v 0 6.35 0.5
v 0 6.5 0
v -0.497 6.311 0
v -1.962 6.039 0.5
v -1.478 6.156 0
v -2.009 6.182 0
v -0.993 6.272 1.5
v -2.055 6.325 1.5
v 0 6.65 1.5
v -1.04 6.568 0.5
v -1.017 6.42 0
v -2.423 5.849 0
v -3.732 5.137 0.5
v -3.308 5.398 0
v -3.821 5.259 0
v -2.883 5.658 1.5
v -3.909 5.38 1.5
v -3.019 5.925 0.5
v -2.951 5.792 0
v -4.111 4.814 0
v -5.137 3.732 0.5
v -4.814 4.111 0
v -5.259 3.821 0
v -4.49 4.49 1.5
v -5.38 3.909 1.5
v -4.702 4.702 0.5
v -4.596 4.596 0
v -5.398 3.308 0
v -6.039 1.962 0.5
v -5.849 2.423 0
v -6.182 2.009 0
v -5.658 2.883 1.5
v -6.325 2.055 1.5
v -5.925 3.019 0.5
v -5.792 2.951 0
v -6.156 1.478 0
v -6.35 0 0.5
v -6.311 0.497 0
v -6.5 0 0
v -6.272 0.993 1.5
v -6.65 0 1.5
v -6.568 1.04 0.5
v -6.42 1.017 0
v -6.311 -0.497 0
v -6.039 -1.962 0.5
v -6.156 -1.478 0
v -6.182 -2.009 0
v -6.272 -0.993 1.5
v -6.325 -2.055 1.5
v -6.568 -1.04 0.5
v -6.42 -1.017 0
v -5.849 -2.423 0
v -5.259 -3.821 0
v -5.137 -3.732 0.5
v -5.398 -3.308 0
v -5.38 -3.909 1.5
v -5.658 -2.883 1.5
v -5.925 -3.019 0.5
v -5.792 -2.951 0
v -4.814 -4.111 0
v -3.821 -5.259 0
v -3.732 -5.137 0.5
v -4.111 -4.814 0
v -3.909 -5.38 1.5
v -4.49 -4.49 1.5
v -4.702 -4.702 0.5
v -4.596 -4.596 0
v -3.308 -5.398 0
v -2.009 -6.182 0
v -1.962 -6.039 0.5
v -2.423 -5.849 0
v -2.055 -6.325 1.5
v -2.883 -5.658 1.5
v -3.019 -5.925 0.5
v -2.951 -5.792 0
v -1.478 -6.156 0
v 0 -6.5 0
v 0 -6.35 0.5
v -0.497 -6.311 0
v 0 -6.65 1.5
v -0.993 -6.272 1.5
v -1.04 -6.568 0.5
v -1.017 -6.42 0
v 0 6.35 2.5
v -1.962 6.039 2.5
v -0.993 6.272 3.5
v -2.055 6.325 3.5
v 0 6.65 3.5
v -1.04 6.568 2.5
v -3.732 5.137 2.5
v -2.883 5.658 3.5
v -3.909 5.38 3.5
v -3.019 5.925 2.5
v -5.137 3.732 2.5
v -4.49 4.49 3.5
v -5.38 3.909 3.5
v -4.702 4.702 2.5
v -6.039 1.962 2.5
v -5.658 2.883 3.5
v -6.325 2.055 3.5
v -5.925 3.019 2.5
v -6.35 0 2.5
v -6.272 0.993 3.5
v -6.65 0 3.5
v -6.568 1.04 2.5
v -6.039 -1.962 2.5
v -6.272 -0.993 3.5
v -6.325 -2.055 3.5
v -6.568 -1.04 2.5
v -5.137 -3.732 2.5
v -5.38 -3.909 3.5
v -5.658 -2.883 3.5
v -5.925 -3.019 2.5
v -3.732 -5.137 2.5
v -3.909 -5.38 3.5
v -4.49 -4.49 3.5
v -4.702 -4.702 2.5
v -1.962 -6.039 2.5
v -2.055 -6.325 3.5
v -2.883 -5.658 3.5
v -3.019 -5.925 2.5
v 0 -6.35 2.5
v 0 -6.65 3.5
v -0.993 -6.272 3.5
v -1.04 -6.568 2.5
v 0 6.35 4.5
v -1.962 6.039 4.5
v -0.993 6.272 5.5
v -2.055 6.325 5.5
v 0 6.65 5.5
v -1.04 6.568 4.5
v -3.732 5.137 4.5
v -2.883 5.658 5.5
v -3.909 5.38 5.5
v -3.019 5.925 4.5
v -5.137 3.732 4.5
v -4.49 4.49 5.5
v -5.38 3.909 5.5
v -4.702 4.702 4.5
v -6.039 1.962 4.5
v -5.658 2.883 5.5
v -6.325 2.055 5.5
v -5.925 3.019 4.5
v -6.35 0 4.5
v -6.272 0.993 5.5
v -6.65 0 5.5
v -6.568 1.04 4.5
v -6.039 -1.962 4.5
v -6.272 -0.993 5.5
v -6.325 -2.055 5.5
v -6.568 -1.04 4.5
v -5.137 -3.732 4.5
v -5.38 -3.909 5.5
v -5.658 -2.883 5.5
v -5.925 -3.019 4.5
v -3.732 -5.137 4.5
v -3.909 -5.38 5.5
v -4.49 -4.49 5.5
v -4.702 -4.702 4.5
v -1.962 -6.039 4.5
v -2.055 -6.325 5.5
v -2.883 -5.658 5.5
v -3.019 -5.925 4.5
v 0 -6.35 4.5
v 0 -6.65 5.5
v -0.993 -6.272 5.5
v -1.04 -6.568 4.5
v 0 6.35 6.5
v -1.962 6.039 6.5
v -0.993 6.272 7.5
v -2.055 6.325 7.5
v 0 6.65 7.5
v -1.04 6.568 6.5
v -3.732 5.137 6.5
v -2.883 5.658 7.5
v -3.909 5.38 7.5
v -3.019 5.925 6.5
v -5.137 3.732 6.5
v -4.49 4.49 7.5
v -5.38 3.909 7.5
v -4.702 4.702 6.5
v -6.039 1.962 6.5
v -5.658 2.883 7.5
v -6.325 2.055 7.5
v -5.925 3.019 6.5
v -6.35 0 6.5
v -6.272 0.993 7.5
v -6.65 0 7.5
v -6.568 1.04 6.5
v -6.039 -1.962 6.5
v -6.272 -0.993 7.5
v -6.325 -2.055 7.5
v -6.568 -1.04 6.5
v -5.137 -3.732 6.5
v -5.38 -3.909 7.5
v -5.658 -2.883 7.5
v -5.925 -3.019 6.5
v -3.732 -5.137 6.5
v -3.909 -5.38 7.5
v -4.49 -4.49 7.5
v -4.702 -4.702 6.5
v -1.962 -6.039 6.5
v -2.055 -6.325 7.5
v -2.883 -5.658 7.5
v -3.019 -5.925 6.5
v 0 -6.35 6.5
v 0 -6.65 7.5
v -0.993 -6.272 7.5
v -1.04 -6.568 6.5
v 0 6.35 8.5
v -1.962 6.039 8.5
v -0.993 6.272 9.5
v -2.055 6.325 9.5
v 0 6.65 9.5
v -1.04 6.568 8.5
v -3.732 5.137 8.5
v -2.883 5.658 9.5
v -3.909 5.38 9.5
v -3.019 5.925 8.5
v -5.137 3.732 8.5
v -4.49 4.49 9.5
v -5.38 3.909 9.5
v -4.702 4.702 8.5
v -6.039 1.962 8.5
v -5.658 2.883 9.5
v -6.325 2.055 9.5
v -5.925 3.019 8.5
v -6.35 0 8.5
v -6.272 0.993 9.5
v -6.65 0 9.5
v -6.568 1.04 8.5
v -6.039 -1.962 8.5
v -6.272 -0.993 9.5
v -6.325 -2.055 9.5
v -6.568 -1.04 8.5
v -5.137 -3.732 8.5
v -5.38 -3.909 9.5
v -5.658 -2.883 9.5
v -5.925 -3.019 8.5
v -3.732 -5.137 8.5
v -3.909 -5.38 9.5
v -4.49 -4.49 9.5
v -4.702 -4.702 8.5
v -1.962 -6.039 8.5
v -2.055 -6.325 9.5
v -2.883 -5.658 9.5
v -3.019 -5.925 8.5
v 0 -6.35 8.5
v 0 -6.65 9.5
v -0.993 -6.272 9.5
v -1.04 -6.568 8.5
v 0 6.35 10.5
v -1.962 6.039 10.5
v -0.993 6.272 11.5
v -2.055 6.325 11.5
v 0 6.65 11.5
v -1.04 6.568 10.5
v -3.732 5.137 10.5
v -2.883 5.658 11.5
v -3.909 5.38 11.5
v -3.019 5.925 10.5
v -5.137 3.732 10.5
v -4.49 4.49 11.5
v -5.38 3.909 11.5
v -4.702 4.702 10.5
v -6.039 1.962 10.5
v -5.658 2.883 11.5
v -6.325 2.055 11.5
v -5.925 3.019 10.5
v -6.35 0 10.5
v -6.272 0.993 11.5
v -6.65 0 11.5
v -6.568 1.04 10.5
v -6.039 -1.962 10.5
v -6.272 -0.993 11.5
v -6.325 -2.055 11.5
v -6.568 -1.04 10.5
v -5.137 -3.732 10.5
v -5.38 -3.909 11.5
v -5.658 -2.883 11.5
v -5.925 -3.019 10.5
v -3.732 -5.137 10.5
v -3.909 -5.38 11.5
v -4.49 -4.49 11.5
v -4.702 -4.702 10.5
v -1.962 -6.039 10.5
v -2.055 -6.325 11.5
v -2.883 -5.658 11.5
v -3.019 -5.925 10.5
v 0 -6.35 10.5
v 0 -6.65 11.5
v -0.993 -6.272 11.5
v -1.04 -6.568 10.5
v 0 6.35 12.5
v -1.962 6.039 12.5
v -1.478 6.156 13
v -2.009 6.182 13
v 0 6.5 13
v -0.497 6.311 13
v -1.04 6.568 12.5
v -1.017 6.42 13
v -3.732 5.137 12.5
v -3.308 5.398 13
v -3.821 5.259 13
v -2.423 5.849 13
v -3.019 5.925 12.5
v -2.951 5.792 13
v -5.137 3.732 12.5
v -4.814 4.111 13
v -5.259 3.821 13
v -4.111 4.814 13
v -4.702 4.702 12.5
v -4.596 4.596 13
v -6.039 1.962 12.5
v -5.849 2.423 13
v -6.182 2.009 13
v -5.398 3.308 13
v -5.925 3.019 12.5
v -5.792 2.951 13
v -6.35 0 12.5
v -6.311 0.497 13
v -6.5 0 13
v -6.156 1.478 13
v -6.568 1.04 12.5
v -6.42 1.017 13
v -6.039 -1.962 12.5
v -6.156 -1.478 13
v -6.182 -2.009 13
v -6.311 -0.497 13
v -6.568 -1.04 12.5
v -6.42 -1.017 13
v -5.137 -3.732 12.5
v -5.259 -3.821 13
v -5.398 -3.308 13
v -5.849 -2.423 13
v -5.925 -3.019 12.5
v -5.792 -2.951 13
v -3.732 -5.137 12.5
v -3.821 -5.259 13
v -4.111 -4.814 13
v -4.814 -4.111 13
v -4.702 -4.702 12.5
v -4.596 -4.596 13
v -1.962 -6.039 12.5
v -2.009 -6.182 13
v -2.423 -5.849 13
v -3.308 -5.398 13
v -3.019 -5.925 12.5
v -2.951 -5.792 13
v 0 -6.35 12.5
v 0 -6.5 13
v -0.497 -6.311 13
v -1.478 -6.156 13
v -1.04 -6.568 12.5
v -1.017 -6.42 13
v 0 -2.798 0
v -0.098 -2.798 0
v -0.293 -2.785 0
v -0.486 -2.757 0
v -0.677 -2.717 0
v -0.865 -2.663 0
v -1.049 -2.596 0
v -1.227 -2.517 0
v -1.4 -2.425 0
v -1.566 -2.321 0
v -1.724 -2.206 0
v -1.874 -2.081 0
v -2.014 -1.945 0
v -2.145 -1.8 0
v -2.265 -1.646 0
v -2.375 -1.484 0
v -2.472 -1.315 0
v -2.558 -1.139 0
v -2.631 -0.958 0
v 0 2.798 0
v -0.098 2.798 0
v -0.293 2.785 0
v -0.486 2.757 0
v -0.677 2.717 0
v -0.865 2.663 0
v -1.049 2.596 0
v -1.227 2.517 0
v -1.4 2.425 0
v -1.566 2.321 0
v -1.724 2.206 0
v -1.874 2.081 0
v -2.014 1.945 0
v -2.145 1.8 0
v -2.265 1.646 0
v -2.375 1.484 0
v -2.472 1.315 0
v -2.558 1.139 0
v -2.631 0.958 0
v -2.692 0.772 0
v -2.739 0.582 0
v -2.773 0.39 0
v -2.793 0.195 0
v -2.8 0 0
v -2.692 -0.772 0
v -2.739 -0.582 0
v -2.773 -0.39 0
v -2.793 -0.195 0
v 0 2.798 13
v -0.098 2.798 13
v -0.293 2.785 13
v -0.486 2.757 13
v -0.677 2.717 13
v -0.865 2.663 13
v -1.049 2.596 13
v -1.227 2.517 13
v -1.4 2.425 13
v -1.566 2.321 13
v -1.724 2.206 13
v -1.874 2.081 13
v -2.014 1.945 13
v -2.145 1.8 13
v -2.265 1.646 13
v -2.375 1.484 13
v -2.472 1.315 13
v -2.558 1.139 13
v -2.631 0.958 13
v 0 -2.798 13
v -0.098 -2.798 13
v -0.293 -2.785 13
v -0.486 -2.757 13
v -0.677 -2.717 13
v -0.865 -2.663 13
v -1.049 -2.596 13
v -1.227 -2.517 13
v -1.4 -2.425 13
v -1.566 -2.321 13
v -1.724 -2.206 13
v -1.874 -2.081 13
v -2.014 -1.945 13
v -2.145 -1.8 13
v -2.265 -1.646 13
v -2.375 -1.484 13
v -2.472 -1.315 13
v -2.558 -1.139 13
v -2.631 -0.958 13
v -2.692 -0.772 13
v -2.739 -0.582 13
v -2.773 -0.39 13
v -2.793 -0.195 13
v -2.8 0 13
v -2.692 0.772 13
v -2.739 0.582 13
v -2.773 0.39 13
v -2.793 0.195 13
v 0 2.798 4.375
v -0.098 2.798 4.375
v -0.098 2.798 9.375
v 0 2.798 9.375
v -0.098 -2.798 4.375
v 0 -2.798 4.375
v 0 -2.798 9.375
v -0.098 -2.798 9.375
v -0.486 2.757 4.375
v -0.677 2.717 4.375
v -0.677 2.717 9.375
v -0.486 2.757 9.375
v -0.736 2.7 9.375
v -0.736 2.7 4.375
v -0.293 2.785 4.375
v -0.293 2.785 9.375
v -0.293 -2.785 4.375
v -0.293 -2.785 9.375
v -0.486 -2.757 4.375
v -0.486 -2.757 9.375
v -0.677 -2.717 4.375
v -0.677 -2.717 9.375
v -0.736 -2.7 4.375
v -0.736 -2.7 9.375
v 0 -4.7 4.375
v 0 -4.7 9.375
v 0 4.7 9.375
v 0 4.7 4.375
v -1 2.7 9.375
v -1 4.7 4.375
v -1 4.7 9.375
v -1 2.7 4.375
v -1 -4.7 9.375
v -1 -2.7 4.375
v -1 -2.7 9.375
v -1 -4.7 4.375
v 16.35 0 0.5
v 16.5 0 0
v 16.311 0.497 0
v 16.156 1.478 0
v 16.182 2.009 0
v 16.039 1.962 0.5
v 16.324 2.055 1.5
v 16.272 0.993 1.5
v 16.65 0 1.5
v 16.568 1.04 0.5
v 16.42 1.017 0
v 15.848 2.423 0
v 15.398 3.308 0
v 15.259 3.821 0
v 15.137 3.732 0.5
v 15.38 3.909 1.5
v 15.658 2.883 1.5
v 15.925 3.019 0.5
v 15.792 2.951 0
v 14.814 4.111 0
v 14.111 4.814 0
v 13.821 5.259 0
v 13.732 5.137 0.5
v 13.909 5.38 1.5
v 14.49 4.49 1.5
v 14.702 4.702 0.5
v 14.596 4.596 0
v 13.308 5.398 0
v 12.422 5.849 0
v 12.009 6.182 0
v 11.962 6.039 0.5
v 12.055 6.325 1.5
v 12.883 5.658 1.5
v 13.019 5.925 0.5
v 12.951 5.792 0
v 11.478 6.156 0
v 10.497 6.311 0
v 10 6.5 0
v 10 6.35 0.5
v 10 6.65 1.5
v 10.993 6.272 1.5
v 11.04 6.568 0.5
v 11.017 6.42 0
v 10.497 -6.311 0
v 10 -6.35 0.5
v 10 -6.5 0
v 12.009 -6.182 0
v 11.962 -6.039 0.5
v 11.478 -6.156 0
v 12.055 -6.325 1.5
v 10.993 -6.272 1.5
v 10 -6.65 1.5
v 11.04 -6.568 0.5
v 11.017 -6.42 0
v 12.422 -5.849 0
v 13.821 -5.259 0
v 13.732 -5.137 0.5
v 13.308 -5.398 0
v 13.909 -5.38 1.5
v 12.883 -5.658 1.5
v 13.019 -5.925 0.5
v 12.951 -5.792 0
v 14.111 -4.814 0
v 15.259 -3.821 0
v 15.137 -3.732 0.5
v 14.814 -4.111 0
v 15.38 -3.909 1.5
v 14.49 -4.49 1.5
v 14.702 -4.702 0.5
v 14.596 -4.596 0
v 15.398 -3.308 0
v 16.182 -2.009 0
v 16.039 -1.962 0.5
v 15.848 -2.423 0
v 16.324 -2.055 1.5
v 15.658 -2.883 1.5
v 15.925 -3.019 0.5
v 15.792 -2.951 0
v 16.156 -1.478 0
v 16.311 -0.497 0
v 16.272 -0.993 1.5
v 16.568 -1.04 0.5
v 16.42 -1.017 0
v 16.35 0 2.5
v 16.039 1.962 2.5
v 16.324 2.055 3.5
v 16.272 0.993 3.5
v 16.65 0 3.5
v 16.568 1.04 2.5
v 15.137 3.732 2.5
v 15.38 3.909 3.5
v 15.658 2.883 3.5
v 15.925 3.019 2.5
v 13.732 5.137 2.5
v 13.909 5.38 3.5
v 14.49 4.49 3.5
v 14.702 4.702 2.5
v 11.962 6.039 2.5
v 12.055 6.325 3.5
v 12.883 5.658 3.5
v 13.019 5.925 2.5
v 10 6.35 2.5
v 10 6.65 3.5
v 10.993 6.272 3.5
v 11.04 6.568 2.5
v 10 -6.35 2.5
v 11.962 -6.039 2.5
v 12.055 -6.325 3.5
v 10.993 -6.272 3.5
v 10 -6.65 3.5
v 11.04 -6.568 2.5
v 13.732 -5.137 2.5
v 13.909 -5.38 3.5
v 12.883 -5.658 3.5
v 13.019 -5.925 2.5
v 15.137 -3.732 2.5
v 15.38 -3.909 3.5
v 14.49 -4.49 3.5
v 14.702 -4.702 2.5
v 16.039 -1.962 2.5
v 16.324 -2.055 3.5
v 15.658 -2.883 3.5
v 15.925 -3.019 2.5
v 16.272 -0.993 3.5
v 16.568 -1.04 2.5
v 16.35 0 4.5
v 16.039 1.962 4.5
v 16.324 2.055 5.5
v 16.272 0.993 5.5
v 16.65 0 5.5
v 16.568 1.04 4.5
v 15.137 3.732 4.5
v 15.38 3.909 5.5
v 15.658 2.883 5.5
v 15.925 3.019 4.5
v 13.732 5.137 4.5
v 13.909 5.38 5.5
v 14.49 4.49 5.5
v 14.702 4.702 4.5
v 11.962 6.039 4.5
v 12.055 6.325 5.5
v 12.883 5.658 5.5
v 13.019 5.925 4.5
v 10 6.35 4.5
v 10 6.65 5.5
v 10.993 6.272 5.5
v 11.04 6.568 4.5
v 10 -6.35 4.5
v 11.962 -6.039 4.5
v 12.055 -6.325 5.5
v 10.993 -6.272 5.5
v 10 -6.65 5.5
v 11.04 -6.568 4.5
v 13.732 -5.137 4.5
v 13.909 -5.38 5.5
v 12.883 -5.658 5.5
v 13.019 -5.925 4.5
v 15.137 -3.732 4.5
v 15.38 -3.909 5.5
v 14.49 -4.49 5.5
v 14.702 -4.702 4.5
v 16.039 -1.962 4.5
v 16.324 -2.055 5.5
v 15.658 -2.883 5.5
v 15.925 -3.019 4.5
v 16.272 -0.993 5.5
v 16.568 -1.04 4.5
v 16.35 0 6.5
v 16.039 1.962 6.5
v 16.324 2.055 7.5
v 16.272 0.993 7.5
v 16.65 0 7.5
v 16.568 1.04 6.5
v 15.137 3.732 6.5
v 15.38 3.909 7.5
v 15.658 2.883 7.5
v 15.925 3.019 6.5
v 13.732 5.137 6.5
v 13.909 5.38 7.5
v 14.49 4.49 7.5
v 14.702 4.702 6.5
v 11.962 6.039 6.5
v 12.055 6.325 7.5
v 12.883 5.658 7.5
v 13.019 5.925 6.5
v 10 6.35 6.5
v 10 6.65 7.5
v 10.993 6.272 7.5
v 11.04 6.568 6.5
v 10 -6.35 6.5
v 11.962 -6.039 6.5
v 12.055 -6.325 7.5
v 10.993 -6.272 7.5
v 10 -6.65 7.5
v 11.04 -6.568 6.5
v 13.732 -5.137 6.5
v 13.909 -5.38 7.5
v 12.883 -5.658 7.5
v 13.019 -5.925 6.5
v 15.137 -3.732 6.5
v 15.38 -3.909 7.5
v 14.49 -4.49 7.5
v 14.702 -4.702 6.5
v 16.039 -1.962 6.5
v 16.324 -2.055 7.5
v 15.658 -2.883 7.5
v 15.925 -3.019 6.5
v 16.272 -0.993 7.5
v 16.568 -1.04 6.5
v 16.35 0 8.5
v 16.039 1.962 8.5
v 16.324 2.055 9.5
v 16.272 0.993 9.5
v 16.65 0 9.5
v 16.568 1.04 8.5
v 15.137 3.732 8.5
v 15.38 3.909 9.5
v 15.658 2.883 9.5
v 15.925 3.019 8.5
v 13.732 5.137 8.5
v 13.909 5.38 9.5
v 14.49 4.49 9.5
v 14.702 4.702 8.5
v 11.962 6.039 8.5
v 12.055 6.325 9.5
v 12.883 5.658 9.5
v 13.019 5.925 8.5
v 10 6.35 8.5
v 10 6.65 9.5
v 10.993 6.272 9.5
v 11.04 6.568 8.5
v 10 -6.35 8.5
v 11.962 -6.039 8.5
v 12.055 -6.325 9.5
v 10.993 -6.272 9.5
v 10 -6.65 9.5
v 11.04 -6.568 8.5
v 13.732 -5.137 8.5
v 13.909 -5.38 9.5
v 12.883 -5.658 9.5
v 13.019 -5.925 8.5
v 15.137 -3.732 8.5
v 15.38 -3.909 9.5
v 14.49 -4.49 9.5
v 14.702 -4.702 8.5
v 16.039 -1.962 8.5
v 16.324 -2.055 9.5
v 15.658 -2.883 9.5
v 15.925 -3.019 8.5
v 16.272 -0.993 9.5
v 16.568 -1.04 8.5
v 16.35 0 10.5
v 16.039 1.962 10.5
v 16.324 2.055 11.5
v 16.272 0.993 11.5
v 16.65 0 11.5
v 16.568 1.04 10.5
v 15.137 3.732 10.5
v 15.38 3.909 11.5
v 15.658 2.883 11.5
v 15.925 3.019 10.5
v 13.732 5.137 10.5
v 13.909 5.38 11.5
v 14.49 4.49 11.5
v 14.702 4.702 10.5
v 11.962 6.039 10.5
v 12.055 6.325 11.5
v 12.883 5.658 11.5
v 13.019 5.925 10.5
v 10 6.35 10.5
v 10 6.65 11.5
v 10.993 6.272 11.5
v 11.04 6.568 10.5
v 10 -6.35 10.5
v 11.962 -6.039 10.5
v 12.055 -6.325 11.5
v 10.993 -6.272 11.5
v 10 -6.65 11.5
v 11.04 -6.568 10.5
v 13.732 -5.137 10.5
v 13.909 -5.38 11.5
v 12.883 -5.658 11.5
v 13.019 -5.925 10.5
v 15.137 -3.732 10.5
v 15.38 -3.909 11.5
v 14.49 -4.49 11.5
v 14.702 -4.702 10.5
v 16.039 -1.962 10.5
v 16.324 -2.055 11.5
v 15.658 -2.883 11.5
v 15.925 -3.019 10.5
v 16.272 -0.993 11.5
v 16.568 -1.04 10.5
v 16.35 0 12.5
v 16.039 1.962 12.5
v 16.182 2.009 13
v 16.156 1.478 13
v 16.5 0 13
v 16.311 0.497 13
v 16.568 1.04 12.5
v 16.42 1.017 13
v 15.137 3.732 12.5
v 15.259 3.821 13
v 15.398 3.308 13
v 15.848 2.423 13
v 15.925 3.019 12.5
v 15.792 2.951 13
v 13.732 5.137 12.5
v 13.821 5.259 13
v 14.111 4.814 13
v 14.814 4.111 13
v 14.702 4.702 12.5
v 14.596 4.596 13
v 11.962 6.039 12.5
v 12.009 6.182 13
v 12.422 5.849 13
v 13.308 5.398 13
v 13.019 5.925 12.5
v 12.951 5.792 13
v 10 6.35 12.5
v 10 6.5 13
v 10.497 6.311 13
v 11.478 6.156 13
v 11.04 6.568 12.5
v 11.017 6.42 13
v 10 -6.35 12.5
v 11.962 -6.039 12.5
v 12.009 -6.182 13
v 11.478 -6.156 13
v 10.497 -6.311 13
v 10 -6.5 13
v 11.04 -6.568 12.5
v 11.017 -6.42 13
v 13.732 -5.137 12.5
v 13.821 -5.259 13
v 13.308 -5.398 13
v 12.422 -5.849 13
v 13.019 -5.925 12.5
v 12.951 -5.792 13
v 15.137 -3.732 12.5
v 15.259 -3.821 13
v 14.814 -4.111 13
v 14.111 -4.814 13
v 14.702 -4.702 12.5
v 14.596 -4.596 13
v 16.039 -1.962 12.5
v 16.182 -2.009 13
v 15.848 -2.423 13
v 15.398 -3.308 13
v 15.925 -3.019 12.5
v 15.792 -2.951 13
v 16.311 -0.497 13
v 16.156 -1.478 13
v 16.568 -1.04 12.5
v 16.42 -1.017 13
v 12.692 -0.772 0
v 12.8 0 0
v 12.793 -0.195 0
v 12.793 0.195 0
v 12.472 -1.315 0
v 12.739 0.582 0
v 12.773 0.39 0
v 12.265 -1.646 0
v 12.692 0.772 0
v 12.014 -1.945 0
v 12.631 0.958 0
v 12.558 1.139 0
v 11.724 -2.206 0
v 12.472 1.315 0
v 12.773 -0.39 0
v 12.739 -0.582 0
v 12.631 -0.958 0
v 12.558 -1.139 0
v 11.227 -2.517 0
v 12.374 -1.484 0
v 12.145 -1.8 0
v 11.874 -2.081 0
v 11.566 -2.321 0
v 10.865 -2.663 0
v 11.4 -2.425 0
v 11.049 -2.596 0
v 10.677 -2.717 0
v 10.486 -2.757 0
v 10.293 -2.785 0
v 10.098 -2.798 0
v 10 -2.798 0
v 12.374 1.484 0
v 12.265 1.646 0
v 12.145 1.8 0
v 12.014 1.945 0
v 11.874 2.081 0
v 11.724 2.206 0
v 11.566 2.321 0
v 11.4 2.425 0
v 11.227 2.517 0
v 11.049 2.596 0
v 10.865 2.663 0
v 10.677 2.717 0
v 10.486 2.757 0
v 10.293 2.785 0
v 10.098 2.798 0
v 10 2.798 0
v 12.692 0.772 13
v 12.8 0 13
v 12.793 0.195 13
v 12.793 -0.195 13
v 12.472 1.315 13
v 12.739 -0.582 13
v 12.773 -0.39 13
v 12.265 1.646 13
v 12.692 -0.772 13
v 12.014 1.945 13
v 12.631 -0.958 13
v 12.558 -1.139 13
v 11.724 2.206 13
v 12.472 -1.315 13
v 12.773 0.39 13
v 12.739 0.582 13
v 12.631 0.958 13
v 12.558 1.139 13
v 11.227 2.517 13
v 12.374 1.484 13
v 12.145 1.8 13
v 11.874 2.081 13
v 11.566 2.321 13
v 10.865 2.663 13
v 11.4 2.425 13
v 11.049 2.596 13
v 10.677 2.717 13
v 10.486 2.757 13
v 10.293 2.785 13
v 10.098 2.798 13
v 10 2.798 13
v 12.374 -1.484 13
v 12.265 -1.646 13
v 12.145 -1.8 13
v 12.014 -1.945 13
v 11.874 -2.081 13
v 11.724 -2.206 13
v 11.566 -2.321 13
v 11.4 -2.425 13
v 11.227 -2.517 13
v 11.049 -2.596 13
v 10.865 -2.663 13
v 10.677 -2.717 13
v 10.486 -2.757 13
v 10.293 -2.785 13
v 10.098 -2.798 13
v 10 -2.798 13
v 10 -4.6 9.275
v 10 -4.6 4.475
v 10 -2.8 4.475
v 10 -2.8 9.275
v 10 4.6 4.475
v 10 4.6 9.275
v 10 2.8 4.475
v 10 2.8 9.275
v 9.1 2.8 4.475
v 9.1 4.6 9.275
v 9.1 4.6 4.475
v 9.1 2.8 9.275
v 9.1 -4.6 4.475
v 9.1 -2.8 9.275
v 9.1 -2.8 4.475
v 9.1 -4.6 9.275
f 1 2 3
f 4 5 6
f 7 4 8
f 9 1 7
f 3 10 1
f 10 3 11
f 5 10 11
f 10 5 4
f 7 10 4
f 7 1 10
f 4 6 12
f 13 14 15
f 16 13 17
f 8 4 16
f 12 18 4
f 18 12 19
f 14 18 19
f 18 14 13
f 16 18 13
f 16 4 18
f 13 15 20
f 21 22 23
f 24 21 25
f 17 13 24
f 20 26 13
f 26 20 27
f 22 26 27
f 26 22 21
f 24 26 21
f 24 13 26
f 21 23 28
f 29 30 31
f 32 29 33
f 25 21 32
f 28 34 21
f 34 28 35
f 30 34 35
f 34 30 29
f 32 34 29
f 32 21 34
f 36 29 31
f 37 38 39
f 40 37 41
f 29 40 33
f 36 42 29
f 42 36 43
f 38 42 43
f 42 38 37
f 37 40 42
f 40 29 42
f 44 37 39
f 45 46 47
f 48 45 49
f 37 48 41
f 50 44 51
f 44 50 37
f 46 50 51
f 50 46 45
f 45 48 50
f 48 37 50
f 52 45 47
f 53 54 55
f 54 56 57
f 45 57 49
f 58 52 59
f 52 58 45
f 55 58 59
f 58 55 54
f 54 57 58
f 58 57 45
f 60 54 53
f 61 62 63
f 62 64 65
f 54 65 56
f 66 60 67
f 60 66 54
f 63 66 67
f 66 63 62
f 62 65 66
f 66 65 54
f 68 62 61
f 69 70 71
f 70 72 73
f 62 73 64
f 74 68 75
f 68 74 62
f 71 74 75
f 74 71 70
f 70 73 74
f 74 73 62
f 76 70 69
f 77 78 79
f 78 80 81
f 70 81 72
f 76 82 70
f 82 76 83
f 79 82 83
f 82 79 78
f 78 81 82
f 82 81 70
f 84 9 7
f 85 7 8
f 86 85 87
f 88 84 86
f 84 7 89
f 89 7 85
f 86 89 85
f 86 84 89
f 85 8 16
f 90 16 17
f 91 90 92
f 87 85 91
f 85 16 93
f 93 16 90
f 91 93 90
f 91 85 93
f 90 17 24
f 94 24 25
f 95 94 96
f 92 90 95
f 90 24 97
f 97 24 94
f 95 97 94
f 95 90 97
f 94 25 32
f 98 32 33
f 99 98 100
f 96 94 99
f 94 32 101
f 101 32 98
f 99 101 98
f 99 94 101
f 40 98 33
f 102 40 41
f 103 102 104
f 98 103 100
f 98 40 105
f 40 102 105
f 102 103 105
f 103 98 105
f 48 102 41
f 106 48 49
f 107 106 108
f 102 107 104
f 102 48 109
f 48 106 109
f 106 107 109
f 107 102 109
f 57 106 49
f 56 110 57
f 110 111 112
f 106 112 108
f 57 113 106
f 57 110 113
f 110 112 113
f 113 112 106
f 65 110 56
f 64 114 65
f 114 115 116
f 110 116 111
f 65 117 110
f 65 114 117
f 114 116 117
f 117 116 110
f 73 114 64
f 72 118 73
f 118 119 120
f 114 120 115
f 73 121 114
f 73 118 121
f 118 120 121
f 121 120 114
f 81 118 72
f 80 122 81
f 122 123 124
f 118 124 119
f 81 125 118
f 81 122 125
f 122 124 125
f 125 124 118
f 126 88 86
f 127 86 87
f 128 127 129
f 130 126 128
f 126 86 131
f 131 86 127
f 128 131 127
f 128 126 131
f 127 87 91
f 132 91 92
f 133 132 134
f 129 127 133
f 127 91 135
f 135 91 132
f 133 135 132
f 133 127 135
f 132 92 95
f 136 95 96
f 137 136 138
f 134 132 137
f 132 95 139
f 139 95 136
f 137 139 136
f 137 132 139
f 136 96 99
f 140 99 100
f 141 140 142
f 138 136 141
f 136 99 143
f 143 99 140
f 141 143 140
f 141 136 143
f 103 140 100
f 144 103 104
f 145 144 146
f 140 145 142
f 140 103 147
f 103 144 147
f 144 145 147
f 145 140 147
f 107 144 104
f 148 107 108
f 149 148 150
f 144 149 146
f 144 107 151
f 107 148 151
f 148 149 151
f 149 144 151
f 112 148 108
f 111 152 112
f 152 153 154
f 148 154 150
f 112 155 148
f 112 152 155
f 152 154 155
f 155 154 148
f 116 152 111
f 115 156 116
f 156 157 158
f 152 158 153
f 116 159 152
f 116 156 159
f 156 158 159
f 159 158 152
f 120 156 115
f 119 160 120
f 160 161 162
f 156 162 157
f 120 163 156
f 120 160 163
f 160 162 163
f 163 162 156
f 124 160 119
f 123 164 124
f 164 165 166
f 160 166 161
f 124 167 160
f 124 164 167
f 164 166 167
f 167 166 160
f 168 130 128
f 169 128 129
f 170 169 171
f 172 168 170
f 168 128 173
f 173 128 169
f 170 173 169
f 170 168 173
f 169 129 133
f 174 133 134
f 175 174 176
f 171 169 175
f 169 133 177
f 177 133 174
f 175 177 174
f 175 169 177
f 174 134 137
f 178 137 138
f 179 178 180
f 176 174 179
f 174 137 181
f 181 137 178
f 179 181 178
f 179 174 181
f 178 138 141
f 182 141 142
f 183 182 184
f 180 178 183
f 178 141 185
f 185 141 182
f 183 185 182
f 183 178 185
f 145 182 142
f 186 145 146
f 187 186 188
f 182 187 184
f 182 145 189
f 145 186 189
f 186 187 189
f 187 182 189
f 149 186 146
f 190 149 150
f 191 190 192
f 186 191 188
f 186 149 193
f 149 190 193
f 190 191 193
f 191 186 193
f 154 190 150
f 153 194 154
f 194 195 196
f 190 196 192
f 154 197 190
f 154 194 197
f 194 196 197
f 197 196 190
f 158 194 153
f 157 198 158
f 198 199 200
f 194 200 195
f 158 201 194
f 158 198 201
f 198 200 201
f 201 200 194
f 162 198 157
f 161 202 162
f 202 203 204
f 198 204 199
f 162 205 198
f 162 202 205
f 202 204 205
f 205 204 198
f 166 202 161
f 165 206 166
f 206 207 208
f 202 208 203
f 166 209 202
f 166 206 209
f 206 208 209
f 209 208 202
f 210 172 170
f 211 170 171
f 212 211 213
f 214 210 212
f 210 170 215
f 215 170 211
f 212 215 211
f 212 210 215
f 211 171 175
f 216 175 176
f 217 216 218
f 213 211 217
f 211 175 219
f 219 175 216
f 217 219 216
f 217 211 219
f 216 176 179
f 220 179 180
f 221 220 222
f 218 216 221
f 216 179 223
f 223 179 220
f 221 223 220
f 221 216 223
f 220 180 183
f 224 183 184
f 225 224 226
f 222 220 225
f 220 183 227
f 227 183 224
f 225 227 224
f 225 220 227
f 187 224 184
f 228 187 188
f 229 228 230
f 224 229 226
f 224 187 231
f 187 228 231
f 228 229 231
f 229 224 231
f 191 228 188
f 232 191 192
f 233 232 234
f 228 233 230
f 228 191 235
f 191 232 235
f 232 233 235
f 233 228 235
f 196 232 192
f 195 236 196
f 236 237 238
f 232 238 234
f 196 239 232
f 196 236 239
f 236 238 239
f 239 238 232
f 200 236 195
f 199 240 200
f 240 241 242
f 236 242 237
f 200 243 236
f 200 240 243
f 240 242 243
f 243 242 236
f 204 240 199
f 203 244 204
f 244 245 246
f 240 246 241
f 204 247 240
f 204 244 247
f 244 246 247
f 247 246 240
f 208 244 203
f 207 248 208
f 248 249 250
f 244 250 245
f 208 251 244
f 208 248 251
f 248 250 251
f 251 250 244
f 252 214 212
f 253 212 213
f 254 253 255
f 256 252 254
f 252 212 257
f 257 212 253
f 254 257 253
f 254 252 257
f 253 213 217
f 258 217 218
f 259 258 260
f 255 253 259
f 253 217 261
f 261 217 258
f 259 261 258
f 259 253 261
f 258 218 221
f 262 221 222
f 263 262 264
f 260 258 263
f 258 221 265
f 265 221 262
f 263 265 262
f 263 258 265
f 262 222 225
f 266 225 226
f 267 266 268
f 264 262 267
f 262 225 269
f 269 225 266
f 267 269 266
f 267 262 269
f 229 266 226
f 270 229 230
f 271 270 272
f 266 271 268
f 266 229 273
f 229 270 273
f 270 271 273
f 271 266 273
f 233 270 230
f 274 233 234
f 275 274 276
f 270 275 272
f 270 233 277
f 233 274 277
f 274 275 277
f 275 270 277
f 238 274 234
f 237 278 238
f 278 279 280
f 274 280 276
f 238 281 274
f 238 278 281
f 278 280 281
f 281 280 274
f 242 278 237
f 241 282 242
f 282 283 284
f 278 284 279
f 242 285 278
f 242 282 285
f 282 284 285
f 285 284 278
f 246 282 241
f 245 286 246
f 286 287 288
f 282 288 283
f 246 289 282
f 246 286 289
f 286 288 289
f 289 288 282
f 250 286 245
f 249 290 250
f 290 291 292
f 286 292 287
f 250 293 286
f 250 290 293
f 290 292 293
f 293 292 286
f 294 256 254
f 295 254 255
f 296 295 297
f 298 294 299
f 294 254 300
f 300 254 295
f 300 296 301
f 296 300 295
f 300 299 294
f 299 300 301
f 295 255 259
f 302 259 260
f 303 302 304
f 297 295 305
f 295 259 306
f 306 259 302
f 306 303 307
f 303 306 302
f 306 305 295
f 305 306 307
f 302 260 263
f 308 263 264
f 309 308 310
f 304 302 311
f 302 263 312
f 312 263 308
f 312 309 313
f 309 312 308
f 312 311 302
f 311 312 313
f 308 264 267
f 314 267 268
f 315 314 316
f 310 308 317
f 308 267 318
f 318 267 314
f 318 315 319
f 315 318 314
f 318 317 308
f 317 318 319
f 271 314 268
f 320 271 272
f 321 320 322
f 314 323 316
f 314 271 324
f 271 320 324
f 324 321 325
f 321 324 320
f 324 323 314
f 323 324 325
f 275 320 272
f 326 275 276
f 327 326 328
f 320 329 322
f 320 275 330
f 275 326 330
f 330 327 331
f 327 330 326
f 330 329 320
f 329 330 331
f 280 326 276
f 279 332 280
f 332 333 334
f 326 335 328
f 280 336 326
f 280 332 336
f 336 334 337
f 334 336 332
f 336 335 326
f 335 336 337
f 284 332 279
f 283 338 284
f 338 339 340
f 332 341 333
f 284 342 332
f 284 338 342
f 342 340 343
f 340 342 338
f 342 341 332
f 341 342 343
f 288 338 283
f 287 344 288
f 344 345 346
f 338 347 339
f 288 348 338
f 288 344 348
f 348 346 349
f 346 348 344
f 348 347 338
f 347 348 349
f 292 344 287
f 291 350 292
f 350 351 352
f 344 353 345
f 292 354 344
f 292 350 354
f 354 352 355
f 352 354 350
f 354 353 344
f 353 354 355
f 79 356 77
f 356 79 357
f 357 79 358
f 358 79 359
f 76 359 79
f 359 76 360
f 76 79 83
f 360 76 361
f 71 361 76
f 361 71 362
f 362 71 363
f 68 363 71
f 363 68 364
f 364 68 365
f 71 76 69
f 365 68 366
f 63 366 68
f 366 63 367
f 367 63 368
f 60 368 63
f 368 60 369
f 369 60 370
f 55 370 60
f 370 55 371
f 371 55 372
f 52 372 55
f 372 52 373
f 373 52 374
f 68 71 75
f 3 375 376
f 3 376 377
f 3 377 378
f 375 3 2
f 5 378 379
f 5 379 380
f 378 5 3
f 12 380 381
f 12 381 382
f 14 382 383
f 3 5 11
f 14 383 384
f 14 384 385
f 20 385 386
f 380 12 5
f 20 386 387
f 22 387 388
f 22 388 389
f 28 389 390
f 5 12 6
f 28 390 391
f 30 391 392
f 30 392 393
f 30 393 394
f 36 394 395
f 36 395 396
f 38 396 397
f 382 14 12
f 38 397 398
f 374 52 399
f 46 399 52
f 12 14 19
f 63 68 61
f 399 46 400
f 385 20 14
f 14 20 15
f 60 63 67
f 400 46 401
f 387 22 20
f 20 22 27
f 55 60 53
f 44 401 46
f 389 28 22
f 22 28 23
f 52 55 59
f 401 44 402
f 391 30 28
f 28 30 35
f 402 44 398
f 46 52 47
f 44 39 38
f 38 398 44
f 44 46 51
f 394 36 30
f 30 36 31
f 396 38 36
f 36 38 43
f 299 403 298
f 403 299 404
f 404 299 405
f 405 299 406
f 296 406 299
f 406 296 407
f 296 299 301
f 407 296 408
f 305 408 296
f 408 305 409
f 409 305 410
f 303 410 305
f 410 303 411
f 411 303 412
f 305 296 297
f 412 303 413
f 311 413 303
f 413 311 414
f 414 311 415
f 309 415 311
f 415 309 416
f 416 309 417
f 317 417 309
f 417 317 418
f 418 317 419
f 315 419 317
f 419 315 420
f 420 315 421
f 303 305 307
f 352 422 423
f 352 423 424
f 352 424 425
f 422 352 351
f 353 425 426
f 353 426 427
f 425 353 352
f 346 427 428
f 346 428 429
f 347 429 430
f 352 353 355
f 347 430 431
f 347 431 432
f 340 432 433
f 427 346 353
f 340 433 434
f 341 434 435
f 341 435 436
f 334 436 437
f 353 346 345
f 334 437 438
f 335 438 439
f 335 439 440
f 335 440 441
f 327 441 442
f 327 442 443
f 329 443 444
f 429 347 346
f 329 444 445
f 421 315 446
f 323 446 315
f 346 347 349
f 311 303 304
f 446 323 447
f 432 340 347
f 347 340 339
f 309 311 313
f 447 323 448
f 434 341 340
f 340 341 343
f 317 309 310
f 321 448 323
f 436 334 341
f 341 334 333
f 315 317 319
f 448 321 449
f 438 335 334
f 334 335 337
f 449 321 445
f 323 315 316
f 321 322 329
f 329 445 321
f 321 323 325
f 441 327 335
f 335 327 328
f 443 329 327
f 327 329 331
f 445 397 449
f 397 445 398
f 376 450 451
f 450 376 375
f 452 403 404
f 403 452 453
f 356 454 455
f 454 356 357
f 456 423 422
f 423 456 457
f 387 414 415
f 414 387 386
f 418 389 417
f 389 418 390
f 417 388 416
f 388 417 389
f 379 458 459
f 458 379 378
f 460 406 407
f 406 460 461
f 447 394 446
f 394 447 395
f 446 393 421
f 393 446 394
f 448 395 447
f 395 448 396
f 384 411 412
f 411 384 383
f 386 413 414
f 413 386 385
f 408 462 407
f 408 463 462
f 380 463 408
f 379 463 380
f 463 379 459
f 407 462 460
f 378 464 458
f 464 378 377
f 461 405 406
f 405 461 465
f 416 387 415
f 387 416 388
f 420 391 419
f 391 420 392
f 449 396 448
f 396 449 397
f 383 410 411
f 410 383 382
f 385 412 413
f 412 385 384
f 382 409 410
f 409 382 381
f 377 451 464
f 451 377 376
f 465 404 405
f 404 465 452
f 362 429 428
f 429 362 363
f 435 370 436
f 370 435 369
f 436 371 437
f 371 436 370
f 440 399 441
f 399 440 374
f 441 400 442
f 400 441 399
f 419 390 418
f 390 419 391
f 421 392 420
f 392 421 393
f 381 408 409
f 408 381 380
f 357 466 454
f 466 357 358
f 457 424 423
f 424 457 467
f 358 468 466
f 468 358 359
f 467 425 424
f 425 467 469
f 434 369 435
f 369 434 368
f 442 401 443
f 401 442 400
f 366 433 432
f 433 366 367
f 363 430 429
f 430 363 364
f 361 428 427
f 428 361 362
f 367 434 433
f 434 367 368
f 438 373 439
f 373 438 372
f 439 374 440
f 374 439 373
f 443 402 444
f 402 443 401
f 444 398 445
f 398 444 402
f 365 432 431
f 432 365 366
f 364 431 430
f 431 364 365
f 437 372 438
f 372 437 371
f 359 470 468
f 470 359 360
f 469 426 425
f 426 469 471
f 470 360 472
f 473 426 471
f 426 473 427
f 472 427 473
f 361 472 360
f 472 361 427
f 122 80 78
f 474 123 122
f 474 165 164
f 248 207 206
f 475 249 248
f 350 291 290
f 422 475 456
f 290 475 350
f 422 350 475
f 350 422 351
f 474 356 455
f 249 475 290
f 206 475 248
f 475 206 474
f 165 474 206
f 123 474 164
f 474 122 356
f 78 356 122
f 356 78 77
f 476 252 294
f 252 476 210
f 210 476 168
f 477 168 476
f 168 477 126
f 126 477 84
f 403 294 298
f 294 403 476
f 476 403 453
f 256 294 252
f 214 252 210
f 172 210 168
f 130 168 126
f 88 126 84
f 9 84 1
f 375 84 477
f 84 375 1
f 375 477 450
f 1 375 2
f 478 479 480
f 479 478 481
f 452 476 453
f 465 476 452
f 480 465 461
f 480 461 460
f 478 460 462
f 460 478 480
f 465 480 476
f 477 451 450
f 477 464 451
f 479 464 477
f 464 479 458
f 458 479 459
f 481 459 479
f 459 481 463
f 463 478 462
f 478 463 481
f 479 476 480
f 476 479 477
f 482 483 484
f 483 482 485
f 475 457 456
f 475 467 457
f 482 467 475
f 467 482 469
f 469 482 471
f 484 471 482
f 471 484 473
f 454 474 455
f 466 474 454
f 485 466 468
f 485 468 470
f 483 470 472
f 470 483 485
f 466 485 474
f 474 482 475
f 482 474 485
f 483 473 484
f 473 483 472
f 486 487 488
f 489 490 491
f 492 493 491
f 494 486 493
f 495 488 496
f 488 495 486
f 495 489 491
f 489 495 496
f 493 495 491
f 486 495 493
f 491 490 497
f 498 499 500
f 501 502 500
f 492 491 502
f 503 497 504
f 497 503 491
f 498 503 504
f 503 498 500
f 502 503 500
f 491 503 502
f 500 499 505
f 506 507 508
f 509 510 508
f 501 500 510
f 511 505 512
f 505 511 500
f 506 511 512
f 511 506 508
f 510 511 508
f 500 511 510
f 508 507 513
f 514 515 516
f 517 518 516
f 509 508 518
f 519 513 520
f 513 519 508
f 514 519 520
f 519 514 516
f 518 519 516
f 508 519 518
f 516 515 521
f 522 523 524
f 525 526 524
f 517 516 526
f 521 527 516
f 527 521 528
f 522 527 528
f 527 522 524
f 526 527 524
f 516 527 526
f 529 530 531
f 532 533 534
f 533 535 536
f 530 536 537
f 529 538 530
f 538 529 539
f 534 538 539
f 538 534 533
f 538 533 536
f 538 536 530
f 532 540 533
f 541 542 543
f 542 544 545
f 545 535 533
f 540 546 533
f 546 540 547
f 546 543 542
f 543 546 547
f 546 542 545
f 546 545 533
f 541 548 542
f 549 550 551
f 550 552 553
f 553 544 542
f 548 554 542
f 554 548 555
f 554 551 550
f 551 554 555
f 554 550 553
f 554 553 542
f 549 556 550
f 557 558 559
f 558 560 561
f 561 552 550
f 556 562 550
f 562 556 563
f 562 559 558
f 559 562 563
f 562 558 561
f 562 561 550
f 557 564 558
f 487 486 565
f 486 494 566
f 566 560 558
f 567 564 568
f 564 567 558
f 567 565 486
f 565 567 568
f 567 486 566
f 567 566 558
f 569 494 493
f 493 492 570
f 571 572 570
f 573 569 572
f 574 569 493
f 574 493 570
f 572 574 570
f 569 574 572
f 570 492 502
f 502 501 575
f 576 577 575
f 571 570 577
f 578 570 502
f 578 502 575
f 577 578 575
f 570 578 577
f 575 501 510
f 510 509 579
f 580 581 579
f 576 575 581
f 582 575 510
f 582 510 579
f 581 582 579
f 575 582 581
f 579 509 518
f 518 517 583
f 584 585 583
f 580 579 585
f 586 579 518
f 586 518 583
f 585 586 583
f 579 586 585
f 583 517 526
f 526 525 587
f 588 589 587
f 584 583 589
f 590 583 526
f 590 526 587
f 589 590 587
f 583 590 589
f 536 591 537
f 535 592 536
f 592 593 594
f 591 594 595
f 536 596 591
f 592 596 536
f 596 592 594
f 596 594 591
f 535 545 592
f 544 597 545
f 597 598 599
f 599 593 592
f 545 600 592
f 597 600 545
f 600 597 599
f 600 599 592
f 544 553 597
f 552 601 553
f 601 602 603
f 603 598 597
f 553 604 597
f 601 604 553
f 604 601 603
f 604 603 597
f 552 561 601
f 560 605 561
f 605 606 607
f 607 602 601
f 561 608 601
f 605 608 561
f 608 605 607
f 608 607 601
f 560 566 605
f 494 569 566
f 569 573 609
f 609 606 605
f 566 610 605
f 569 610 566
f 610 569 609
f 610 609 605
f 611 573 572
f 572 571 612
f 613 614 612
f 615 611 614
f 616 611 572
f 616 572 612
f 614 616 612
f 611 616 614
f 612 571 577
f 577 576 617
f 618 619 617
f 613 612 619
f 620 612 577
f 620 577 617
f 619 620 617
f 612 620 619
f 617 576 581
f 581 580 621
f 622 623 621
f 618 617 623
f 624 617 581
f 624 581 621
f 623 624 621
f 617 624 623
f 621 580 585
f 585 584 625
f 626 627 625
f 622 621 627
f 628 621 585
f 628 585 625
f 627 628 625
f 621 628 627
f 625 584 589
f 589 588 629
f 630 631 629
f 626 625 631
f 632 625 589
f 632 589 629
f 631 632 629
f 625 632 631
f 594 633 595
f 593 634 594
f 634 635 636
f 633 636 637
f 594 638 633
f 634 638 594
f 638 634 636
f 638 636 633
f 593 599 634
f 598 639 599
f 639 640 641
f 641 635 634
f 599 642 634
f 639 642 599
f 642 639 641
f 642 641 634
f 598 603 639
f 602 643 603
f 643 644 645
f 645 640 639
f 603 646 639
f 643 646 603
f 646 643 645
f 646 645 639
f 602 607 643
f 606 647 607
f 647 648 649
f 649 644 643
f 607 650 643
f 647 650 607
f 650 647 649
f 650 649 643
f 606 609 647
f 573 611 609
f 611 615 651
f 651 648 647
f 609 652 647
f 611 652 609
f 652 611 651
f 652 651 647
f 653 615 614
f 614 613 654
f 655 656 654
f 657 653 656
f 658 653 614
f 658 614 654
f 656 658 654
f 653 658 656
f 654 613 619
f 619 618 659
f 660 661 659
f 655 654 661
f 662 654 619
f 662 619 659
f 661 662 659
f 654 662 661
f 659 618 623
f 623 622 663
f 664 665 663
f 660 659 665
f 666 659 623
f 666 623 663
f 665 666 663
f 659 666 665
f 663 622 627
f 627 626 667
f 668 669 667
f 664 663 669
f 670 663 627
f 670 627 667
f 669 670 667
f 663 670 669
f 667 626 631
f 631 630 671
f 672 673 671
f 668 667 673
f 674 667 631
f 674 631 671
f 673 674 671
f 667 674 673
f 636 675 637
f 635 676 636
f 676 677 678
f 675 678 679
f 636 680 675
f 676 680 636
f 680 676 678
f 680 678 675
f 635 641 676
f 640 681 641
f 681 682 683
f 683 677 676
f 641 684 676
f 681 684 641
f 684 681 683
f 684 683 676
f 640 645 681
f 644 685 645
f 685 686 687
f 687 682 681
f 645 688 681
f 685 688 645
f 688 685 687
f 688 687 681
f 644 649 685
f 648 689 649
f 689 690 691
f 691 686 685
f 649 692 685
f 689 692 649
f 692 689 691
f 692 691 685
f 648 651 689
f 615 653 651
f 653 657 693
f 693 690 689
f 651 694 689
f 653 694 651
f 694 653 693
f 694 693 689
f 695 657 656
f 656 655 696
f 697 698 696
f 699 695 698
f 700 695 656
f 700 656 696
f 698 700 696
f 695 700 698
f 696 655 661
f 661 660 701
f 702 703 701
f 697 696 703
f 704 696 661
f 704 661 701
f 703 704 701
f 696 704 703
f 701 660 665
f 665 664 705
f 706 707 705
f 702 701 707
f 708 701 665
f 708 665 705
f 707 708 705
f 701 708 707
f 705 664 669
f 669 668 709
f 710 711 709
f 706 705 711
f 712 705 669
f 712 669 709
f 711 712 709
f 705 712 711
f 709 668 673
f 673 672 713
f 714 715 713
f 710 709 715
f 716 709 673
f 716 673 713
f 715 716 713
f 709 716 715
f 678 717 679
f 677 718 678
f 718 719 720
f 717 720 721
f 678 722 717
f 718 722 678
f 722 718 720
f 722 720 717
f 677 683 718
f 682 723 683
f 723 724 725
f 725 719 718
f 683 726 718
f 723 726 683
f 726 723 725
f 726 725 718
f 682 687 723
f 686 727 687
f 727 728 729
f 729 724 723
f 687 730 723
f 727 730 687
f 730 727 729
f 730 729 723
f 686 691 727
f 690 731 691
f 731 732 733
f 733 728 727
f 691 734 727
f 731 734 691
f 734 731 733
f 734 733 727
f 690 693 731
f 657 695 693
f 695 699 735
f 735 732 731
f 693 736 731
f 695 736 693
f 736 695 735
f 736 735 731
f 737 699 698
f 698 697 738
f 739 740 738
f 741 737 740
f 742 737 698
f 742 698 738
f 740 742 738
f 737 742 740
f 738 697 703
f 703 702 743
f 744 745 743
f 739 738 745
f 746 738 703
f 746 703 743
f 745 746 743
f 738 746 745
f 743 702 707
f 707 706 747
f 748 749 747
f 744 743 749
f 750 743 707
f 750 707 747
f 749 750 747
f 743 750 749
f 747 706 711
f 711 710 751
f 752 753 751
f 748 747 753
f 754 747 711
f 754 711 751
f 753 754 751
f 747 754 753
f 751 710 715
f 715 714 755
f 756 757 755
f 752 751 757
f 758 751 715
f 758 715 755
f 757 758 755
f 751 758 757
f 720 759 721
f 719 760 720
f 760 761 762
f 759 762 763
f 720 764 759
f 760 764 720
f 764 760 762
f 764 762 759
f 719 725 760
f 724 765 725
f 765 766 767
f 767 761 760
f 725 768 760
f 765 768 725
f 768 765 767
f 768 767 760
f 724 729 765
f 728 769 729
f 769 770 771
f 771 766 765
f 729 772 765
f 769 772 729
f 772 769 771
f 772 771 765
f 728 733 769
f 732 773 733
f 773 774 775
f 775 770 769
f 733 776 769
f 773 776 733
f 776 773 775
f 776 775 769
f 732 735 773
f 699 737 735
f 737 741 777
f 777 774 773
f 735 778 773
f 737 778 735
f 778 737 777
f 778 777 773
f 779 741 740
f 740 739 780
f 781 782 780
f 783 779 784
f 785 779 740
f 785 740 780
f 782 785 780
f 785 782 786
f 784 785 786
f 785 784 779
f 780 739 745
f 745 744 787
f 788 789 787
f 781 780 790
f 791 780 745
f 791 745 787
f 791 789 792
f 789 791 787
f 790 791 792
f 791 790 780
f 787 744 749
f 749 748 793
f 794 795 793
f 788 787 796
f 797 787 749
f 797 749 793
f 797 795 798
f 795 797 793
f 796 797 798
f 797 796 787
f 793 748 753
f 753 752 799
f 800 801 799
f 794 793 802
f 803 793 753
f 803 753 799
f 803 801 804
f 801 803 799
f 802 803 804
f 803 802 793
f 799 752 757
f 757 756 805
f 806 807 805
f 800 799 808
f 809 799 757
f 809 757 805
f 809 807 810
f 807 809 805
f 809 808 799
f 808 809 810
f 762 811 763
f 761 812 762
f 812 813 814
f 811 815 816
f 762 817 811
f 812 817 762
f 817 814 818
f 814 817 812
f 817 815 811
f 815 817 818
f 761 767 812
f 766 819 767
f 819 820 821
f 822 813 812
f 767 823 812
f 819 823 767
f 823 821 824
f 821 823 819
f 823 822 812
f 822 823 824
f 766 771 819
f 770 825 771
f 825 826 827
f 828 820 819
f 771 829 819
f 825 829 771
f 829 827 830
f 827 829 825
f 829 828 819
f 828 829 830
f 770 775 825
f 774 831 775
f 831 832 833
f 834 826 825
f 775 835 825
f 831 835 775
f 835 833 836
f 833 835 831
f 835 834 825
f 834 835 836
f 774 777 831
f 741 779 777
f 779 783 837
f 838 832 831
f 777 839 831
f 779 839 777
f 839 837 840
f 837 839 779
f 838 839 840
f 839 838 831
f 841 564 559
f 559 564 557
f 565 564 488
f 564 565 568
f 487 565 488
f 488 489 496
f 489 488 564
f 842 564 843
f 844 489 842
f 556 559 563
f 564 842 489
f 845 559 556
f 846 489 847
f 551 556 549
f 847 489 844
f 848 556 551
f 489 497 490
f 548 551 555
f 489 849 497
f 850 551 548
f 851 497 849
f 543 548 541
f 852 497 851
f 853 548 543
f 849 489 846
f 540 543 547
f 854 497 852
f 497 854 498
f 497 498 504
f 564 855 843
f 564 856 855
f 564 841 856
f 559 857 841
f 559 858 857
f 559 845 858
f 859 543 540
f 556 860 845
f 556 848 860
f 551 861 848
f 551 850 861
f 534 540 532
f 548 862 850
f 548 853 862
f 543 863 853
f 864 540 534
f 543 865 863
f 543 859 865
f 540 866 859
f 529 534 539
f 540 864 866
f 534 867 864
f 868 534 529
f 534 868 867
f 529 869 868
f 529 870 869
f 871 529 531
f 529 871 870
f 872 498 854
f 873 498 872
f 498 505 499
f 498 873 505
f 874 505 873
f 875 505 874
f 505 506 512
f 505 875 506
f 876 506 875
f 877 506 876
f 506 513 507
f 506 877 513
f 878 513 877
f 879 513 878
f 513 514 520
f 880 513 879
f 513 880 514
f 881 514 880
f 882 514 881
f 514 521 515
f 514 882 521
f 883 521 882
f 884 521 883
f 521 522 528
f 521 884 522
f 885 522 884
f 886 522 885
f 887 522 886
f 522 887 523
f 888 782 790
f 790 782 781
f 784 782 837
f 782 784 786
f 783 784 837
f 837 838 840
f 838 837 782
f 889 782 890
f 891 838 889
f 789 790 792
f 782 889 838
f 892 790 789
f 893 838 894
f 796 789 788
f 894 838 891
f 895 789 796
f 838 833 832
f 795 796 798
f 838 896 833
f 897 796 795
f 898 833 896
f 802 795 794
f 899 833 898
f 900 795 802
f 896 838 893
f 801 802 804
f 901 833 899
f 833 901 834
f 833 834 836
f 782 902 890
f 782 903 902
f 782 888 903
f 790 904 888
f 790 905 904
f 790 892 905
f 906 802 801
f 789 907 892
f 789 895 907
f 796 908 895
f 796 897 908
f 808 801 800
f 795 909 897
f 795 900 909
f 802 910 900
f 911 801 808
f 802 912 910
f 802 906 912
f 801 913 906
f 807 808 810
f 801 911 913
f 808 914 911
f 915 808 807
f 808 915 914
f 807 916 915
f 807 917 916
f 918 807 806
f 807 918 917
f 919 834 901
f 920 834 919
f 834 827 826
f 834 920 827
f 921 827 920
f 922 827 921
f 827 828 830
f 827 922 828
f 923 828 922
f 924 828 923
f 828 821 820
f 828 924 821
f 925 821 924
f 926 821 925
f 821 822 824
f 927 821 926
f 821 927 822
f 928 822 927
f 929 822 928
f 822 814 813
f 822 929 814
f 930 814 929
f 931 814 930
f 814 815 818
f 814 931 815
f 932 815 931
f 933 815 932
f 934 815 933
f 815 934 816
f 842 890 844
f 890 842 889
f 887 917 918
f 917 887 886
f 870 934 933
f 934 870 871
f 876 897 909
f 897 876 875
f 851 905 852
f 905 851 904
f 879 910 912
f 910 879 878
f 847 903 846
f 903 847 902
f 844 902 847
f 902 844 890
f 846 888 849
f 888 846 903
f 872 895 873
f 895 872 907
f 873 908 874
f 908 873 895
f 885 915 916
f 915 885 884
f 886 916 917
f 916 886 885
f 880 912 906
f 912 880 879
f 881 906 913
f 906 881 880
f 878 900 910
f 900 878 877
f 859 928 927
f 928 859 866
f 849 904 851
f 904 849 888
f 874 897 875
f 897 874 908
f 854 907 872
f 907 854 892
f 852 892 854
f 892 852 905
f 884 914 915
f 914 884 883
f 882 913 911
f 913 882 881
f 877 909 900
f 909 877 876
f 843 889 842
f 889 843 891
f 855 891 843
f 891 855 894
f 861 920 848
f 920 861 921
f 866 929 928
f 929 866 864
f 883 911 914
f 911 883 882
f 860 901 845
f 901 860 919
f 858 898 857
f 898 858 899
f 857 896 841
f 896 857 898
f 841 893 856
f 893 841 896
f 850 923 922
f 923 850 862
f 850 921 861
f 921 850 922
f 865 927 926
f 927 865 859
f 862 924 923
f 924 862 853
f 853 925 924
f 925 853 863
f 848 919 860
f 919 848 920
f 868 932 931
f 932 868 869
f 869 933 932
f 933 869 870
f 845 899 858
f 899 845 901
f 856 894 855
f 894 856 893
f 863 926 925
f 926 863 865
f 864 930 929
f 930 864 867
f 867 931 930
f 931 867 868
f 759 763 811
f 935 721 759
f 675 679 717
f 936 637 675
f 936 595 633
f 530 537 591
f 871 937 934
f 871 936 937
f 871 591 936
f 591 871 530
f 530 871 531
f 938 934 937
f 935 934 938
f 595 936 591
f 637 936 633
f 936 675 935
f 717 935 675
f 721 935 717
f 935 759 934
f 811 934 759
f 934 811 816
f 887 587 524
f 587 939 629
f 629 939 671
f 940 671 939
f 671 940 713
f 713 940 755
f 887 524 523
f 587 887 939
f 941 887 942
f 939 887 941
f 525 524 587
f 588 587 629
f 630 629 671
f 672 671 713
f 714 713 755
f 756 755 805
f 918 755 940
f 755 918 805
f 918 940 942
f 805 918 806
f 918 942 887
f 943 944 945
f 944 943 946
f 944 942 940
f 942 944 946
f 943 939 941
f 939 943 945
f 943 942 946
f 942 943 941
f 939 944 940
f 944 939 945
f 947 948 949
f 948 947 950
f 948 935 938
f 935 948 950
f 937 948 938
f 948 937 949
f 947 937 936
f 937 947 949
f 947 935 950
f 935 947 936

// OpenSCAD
// file: ../libraries/knurledFinishLib_v2.scad
/*
 * knurledFinishLib_v2.scad
 * 
 * Written by aubenc @ Thingiverse
 *
 * This script is licensed under the Public Domain license.
 *
 * http://www.thingiverse.com/thing:31122
 *
 * Derived from knurledFinishLib.scad (also Public Domain license) available at
 *
 * http://www.thingiverse.com/thing:9095
 *
 * Usage:
 *
 *	 Drop this script somewhere where OpenSCAD can find it (your current project's
 *	 working directory/folder or your OpenSCAD libraries directory/folder).
 *
 *	 Add the line:
 *
 *		use <knurledFinishLib_v2.scad>
 *
 *	 in your OpenSCAD script and call either...
 *
 *    knurled_cyl( Knurled cylinder height,
 *                 Knurled cylinder outer diameter,
 *                 Knurl polyhedron width,
 *                 Knurl polyhedron height,
 *                 Knurl polyhedron depth,
 *                 Cylinder ends smoothed height,
 *                 Knurled surface smoothing amount );
 *
 *  ...or...
 *
 *    knurl();
 *
 *	If you use knurled_cyl() module, you need to specify the values for all and
 *
 *  Call the module ' help(); ' for a little bit more of detail
 *  and/or take a look to the PDF available at http://www.thingiverse.com/thing:9095
 *  for a in depth descrition of the knurl properties.
 */


module knurl(	k_cyl_hg	= 12,
					k_cyl_od	= 25,
					knurl_wd =  3,
					knurl_hg =  4,
					knurl_dp =  1.5,
					e_smooth =  2,
					s_smooth =  0)
{
    knurled_cyl(k_cyl_hg, k_cyl_od, 
                knurl_wd, knurl_hg, knurl_dp, 
                e_smooth, s_smooth);
}

module knurled_cyl(chg, cod, cwd, csh, cdp, fsh, smt)
{
    cord=(cod+cdp+cdp*smt/100)/2;
    cird=cord-cdp;
    cfn=round(2*cird*PI/cwd);
    clf=360/cfn;
    crn=ceil(chg/csh);

    echo("knurled cylinder max diameter: ", 2*cord);
    echo("knurled cylinder min diameter: ", 2*cird);

	 if( fsh < 0 )
    {
        union()
        {
            shape(fsh, cird+cdp*smt/100, cord, cfn*4, chg);

            translate([0,0,-(crn*csh-chg)/2])
              knurled_finish(cord, cird, clf, csh, cfn, crn);
        }
    }
    else if ( fsh == 0 )
    {
        intersection()
        {
            cylinder(h=chg, r=cord-cdp*smt/100, $fn=2*cfn, center=false);

            translate([0,0,-(crn*csh-chg)/2])
              knurled_finish(cord, cird, clf, csh, cfn, crn);
        }
    }
    else
    {
        intersection()
        {
            shape(fsh, cird, cord-cdp*smt/100, cfn*4, chg);

            translate([0,0,-(crn*csh-chg)/2])
              knurled_finish(cord, cird, clf, csh, cfn, crn);
        }
    }
}

module shape(hsh, ird, ord, fn4, hg)
{
	x0= 0;	x1 = hsh > 0 ? ird : ord;		x2 = hsh > 0 ? ord : ird;
	y0=-0.1;	y1=0;	y2=abs(hsh);	y3=hg-abs(hsh);	y4=hg;	y5=hg+0.1;

	if ( hsh >= 0 )
	{
		rotate_extrude(convexity=10, $fn=fn4)
		polygon(points=[	[x0,y1],[x1,y1],[x2,y2],[x2,y3],[x1,y4],[x0,y4]	],
					paths=[	[0,1,2,3,4,5]	]);
	}
	else
	{
		rotate_extrude(convexity=10, $fn=fn4)
		polygon(points=[	[x0,y0],[x1,y0],[x1,y1],[x2,y2],
								[x2,y3],[x1,y4],[x1,y5],[x0,y5]	],
					paths=[	[0,1,2,3,4,5,6,7]	]);
	}
}

module knurled_finish(ord, ird, lf, sh, fn, rn)
{
    for(j=[0:rn-1])
    assign(h0=sh*j, h1=sh*(j+1/2), h2=sh*(j+1))
    {
        for(i=[0:fn-1])
        assign(lf0=lf*i, lf1=lf*(i+1/2), lf2=lf*(i+1))
        {
            polyhedron(
                points=[
                     [ 0,0,h0],
                     [ ord*cos(lf0), ord*sin(lf0), h0],
                     [ ird*cos(lf1), ird*sin(lf1), h0],
                     [ ord*cos(lf2), ord*sin(lf2), h0],

                     [ ird*cos(lf0), ird*sin(lf0), h1],
                     [ ord*cos(lf1), ord*sin(lf1), h1],
                     [ ird*cos(lf2), ird*sin(lf2), h1],

                     [ 0,0,h2],
                     [ ord*cos(lf0), ord*sin(lf0), h2],
                     [ ird*cos(lf1), ird*sin(lf1), h2],
                     [ ord*cos(lf2), ord*sin(lf2), h2]
                    ],
                triangles=[
                     [0,1,2],[2,3,0],
                     [1,0,4],[4,0,7],[7,8,4],
                     [8,7,9],[10,9,7],
                     [10,7,6],[6,7,0],[3,6,0],
                     [2,1,4],[3,2,6],[10,6,9],[8,9,4],
                     [4,5,2],[2,5,6],[6,5,9],[9,5,4]
                    ],
                convexity=5);
         }
    }
}

module knurl_help()
{
	echo();
	echo("    Knurled Surface Library  v2  ");
   echo("");
	echo("      Modules:    ");
	echo("");
	echo("        knurled_cyl(parameters... );    -    Requires a value for each an every expected parameter (see bellow)    ");
	echo("");
	echo("        knurl();    -    Call to the previous module with a set of default parameters,    ");
	echo("                                  values may be changed by adding 'parameter_name=value'        i.e.     knurl(s_smooth=40);    ");
	echo("");
	echo("      Parameters, all of them in mm but the last one.    ");
	echo("");
	echo("        k_cyl_hg       -   [ 12   ]  ,,  Height for the knurled cylinder    ");
	echo("        k_cyl_od      -   [ 25   ]  ,,  Cylinder's Outer Diameter before applying the knurled surfacefinishing.    ");
	echo("        knurl_wd     -   [   3   ]  ,,  Knurl's Width.    ");
	echo("        knurl_hg      -   [   4   ]  ,,  Knurl's Height.    ");
	echo("        knurl_dp     -   [  1.5 ]  ,,  Knurl's Depth.    ");
	echo("        e_smooth   -    [  2   ]  ,,  Bevel's Height at the bottom and the top of the cylinder    ");
	echo("        s_smooth   -    [  0   ]  ,,  Knurl's Surface Smoothing :  File donwn the top of the knurl this value, i.e. 40 will snooth it a 40%.    ");
	echo("");
}
// main file
$fn = 90;
time = 0;

include <../libraries/knurledFinishLib_v2.scad>;

module bolex_rewind_knurled_handle () {
  difference () {
    knurled_cyl(13, 13, 2, 2, .3, 0, 0);
    cylinder(r = 5.6 / 2, h = 40, center = true);
  }
}

module bolex_rewind_knurled_handle_SPLIT (piece = 0) {
  difference () {
    bolex_rewind_knurled_handle();
    if (piece == 0) {
      translate([15, 0, 0]) cube([30, 30, 41], center = true);
      translate([0, 3.7, 13.75 / 2]) cube([2, 2, 5], center = true);
      translate([0, -3.7, 13.75 / 2]) cube([2, 2, 5], center = true);
    } else if (piece == 1) {
      difference () {
        translate([-15, 0, 0]) cube([30, 30, 41], center = true);
        translate([0, 3.7, 13.75 / 2]) cube([1.8, 1.8, 4.8], center = true);
        translate([0, -3.7, 13.75 / 2]) cube([1.8, 1.8, 4.8], center = true);
      }
    }
  }
}

rotate([0, 0, time]) {
  bolex_rewind_knurled_handle_SPLIT(0);
  translate([10, 0, 0]) bolex_rewind_knurled_handle_SPLIT(1);
}
